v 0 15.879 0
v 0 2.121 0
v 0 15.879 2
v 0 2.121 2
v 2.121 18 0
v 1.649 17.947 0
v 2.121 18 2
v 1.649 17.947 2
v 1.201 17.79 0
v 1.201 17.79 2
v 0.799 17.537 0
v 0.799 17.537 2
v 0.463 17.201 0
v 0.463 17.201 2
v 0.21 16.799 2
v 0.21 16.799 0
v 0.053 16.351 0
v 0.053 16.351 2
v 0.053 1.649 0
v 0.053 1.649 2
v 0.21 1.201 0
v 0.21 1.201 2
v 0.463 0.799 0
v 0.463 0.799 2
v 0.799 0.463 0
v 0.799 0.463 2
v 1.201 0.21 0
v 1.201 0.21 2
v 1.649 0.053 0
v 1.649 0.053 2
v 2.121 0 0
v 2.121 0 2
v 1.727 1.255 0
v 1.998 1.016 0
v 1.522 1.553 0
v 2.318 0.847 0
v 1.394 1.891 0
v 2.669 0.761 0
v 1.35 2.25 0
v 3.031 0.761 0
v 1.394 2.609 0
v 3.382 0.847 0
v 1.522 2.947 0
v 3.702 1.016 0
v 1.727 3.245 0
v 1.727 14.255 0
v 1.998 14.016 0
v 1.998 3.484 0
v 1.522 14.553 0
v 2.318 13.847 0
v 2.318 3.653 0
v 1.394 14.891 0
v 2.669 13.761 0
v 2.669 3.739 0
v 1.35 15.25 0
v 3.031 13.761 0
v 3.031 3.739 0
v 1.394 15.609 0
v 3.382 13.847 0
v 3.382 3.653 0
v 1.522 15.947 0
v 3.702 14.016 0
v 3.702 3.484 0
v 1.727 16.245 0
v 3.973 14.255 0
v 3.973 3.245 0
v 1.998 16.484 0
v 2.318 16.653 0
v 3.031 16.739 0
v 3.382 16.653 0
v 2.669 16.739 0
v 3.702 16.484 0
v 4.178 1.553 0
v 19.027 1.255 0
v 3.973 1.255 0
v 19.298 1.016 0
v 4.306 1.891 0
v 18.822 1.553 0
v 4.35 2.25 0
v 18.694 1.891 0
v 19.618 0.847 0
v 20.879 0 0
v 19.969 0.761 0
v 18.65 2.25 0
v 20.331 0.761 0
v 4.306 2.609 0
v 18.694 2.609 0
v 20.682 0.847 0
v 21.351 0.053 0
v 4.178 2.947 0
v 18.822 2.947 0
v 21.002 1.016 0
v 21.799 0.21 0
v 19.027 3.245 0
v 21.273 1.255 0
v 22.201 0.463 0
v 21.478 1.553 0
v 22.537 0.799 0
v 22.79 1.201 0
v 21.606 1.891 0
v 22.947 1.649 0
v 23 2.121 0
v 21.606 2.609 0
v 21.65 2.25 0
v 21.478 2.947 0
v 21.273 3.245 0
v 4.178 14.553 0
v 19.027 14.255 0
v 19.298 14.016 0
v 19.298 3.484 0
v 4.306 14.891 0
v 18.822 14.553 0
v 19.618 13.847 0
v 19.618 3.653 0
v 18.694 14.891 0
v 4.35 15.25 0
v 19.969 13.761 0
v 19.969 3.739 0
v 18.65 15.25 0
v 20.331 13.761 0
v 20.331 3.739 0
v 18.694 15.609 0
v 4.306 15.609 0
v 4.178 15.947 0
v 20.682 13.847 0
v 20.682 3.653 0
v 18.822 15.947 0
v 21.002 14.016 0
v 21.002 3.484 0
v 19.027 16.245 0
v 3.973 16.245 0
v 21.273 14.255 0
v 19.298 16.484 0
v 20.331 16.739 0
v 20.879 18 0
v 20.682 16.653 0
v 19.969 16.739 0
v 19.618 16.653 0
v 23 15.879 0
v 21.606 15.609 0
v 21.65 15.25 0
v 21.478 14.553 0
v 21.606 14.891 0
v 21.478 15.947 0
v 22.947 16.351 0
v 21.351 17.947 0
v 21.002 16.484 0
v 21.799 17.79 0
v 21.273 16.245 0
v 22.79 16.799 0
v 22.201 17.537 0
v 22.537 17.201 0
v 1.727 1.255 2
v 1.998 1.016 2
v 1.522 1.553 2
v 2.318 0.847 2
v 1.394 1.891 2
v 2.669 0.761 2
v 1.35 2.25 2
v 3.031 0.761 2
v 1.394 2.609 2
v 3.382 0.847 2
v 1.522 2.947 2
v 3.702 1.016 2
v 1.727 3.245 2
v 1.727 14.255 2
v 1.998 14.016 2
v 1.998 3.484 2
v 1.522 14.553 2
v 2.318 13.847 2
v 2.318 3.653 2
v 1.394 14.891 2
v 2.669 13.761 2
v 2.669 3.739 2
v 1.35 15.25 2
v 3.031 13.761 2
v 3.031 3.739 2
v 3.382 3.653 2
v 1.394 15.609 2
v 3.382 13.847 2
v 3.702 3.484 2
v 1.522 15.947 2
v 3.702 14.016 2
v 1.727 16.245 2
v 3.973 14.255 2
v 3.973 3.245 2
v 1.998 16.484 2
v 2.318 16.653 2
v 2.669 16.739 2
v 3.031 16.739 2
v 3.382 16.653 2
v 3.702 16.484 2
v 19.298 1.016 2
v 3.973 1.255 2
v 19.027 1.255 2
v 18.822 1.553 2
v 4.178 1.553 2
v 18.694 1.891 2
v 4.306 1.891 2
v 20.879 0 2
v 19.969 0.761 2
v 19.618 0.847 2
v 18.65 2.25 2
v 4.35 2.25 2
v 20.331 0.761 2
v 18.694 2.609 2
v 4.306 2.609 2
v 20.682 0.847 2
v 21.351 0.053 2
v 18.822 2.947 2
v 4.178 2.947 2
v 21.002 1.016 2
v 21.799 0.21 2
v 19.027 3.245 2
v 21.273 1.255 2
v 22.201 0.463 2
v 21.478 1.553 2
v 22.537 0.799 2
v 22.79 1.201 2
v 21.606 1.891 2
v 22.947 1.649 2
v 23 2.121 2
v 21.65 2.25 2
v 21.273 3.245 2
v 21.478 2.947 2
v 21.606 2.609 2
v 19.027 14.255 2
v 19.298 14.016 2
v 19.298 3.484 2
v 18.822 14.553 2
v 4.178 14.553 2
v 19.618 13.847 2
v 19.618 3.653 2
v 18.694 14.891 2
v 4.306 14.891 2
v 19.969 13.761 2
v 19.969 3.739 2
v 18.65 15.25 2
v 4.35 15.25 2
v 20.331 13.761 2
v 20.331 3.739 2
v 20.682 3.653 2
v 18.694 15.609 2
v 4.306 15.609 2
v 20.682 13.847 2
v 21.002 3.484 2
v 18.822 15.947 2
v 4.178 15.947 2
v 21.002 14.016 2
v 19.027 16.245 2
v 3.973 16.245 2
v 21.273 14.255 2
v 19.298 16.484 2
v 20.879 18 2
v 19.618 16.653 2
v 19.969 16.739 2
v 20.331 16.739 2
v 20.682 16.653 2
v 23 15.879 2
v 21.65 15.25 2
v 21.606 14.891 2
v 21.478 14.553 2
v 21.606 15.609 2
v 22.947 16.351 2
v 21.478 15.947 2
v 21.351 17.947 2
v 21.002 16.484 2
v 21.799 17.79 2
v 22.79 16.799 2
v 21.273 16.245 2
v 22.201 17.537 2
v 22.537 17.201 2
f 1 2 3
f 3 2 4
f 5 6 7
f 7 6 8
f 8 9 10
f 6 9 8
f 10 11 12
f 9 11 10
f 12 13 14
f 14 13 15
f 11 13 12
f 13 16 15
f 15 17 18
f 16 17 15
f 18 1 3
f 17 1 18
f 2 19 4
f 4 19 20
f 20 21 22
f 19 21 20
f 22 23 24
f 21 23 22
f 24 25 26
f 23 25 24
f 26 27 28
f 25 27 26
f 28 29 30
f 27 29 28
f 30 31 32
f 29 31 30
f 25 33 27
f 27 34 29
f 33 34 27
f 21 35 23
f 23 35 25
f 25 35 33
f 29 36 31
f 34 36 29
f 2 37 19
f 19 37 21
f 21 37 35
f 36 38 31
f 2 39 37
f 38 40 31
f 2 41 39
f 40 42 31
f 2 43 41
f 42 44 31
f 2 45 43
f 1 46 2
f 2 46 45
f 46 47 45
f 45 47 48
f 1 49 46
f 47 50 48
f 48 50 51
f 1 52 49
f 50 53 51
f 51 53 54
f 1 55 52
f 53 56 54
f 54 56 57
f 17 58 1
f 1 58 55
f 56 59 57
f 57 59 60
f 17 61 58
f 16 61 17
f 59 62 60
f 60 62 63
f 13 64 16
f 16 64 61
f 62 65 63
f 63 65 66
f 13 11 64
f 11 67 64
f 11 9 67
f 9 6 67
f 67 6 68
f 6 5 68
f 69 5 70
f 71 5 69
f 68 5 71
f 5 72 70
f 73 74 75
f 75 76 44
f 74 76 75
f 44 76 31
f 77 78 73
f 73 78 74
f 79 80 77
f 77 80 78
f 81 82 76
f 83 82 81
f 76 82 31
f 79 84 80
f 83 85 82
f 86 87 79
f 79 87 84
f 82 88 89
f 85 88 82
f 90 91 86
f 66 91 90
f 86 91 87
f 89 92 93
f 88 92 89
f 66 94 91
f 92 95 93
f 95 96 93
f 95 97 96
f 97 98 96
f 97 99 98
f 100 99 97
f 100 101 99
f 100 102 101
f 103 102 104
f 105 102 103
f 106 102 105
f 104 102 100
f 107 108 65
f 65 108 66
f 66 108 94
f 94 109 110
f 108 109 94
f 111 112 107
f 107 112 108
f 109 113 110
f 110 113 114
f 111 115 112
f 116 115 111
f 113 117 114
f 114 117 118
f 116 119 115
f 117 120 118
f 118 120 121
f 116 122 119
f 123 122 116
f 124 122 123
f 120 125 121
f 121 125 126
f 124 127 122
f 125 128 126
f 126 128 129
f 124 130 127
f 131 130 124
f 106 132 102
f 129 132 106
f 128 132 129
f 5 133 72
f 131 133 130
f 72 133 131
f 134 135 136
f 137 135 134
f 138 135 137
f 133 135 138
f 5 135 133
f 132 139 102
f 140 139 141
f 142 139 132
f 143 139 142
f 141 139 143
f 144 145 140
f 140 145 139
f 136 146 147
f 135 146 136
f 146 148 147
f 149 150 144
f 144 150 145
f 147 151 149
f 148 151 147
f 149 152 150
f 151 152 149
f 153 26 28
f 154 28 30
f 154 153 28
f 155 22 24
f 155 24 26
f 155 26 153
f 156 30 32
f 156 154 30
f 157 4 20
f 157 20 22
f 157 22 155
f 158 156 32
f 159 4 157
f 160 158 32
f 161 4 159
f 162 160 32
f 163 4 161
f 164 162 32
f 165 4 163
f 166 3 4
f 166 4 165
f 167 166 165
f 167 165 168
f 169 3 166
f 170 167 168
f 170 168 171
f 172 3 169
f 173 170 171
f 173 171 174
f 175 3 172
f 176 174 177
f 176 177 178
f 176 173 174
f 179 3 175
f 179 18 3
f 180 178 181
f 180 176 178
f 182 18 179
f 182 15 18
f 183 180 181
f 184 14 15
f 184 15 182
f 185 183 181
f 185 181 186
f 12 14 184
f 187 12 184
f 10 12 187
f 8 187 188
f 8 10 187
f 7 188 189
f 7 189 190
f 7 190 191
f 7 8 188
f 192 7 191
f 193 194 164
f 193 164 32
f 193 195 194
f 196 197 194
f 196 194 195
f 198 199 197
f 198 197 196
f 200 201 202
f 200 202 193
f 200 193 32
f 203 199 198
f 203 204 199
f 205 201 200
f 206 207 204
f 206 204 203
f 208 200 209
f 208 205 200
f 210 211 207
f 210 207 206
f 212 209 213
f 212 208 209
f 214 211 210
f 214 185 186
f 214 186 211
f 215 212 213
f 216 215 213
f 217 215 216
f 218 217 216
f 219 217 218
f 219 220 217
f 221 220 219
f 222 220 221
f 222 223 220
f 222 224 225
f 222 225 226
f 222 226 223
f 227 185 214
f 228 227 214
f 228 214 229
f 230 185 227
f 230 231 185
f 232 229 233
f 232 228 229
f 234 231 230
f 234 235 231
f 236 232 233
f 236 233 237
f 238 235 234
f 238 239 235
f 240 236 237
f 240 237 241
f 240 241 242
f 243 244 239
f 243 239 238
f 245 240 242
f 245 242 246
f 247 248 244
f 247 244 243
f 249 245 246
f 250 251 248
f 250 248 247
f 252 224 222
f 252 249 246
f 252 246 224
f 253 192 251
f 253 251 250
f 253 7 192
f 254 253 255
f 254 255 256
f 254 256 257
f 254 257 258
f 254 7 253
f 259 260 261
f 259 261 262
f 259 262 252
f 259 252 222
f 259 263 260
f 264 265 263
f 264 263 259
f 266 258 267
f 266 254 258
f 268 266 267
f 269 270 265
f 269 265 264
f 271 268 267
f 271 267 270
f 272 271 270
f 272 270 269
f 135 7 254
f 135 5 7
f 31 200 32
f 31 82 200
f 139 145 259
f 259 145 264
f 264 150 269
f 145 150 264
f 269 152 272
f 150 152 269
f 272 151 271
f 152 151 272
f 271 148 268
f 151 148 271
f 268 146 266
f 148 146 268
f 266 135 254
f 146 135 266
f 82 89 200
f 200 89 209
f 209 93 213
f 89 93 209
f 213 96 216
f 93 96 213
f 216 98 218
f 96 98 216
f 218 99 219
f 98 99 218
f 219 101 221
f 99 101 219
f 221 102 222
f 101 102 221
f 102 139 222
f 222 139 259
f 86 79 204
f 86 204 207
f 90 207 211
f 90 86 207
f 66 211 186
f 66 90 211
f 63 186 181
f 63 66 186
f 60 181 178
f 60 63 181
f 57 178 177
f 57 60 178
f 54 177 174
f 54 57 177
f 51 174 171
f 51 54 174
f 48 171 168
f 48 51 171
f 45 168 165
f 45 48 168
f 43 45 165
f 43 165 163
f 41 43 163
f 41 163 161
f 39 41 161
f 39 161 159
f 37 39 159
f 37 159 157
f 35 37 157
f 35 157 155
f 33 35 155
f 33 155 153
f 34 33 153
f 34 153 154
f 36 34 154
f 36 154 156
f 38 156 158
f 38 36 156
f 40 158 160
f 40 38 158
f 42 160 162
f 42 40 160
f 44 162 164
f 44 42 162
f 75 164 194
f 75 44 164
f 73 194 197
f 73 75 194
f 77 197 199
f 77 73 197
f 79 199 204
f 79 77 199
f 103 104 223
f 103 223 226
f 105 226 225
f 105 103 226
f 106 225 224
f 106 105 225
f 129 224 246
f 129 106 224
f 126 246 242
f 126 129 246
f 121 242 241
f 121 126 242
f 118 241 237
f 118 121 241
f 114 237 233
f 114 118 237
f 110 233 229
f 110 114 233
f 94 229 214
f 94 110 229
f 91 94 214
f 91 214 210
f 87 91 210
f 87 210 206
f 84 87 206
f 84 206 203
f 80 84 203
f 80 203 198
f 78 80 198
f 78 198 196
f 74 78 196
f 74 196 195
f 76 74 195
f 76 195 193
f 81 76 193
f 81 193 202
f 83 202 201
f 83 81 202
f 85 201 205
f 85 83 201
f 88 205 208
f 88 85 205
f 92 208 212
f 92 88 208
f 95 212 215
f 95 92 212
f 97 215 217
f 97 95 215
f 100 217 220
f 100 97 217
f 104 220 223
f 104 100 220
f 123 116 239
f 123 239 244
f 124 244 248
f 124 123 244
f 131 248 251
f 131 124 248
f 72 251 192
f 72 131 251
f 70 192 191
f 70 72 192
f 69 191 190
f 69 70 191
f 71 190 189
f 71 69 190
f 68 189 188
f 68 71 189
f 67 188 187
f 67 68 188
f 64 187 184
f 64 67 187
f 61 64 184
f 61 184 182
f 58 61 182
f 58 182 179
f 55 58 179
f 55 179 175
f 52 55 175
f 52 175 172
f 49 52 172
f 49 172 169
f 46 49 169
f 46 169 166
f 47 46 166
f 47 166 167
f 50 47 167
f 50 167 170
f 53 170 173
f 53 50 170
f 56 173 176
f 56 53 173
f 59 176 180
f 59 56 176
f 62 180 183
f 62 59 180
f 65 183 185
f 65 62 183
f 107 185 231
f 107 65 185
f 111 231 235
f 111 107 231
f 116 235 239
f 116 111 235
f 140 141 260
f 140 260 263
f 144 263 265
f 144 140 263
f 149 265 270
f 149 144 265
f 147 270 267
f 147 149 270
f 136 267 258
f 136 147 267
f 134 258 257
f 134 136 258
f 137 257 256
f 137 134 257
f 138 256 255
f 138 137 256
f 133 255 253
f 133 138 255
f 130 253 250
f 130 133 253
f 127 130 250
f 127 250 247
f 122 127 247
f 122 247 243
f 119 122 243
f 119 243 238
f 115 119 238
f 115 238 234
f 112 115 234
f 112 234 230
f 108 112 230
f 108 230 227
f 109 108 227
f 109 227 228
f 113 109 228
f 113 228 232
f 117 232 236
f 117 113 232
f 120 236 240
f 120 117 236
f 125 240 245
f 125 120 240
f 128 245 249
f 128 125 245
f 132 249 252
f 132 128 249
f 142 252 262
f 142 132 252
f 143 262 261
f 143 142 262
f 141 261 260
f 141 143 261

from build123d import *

# Parameters (mm, degrees)
PAD_DEPTH    = 2
SKETCH001_R  = 1.5
POCKET_DEPTH = 2.001


with BuildPart() as part:
    # Sketch → Pad (new body)
    with BuildSketch(Plane.XY):
        with BuildLine():
            Line((0, 15.87868), (0, 2.12132))
            ThreePointArc((0, 2.12132), (0.62132, 0.62132), (2.12132, 0))
            Line((2.12132, 0), (20.87868, 0))
            ThreePointArc((20.87868, 0), (22.37868, 0.62132), (23, 2.12132))
            Line((23, 2.12132), (23, 15.87868))
            ThreePointArc((23, 15.87868), (22.37868, 17.37868), (20.87868, 18))
            Line((20.87868, 18), (2.12132, 18))
            ThreePointArc((2.12132, 18), (0.62132, 17.37868), (0, 15.87868))
        make_face()
    extrude(amount=PAD_DEPTH)

    # Sketch001 → Pocket (cut, through all)
    with BuildSketch(Plane.XY):
        with Locations((20.15, 15.25)):
            Circle(SKETCH001_R)
        with Locations((2.85, 15.25)):
            Circle(SKETCH001_R)
        with Locations((2.85, 2.25)):
            Circle(SKETCH001_R)
        with Locations((20.15, 2.25)):
            Circle(SKETCH001_R)
    extrude(amount=POCKET_DEPTH, mode=Mode.SUBTRACT)


solid = part.part
